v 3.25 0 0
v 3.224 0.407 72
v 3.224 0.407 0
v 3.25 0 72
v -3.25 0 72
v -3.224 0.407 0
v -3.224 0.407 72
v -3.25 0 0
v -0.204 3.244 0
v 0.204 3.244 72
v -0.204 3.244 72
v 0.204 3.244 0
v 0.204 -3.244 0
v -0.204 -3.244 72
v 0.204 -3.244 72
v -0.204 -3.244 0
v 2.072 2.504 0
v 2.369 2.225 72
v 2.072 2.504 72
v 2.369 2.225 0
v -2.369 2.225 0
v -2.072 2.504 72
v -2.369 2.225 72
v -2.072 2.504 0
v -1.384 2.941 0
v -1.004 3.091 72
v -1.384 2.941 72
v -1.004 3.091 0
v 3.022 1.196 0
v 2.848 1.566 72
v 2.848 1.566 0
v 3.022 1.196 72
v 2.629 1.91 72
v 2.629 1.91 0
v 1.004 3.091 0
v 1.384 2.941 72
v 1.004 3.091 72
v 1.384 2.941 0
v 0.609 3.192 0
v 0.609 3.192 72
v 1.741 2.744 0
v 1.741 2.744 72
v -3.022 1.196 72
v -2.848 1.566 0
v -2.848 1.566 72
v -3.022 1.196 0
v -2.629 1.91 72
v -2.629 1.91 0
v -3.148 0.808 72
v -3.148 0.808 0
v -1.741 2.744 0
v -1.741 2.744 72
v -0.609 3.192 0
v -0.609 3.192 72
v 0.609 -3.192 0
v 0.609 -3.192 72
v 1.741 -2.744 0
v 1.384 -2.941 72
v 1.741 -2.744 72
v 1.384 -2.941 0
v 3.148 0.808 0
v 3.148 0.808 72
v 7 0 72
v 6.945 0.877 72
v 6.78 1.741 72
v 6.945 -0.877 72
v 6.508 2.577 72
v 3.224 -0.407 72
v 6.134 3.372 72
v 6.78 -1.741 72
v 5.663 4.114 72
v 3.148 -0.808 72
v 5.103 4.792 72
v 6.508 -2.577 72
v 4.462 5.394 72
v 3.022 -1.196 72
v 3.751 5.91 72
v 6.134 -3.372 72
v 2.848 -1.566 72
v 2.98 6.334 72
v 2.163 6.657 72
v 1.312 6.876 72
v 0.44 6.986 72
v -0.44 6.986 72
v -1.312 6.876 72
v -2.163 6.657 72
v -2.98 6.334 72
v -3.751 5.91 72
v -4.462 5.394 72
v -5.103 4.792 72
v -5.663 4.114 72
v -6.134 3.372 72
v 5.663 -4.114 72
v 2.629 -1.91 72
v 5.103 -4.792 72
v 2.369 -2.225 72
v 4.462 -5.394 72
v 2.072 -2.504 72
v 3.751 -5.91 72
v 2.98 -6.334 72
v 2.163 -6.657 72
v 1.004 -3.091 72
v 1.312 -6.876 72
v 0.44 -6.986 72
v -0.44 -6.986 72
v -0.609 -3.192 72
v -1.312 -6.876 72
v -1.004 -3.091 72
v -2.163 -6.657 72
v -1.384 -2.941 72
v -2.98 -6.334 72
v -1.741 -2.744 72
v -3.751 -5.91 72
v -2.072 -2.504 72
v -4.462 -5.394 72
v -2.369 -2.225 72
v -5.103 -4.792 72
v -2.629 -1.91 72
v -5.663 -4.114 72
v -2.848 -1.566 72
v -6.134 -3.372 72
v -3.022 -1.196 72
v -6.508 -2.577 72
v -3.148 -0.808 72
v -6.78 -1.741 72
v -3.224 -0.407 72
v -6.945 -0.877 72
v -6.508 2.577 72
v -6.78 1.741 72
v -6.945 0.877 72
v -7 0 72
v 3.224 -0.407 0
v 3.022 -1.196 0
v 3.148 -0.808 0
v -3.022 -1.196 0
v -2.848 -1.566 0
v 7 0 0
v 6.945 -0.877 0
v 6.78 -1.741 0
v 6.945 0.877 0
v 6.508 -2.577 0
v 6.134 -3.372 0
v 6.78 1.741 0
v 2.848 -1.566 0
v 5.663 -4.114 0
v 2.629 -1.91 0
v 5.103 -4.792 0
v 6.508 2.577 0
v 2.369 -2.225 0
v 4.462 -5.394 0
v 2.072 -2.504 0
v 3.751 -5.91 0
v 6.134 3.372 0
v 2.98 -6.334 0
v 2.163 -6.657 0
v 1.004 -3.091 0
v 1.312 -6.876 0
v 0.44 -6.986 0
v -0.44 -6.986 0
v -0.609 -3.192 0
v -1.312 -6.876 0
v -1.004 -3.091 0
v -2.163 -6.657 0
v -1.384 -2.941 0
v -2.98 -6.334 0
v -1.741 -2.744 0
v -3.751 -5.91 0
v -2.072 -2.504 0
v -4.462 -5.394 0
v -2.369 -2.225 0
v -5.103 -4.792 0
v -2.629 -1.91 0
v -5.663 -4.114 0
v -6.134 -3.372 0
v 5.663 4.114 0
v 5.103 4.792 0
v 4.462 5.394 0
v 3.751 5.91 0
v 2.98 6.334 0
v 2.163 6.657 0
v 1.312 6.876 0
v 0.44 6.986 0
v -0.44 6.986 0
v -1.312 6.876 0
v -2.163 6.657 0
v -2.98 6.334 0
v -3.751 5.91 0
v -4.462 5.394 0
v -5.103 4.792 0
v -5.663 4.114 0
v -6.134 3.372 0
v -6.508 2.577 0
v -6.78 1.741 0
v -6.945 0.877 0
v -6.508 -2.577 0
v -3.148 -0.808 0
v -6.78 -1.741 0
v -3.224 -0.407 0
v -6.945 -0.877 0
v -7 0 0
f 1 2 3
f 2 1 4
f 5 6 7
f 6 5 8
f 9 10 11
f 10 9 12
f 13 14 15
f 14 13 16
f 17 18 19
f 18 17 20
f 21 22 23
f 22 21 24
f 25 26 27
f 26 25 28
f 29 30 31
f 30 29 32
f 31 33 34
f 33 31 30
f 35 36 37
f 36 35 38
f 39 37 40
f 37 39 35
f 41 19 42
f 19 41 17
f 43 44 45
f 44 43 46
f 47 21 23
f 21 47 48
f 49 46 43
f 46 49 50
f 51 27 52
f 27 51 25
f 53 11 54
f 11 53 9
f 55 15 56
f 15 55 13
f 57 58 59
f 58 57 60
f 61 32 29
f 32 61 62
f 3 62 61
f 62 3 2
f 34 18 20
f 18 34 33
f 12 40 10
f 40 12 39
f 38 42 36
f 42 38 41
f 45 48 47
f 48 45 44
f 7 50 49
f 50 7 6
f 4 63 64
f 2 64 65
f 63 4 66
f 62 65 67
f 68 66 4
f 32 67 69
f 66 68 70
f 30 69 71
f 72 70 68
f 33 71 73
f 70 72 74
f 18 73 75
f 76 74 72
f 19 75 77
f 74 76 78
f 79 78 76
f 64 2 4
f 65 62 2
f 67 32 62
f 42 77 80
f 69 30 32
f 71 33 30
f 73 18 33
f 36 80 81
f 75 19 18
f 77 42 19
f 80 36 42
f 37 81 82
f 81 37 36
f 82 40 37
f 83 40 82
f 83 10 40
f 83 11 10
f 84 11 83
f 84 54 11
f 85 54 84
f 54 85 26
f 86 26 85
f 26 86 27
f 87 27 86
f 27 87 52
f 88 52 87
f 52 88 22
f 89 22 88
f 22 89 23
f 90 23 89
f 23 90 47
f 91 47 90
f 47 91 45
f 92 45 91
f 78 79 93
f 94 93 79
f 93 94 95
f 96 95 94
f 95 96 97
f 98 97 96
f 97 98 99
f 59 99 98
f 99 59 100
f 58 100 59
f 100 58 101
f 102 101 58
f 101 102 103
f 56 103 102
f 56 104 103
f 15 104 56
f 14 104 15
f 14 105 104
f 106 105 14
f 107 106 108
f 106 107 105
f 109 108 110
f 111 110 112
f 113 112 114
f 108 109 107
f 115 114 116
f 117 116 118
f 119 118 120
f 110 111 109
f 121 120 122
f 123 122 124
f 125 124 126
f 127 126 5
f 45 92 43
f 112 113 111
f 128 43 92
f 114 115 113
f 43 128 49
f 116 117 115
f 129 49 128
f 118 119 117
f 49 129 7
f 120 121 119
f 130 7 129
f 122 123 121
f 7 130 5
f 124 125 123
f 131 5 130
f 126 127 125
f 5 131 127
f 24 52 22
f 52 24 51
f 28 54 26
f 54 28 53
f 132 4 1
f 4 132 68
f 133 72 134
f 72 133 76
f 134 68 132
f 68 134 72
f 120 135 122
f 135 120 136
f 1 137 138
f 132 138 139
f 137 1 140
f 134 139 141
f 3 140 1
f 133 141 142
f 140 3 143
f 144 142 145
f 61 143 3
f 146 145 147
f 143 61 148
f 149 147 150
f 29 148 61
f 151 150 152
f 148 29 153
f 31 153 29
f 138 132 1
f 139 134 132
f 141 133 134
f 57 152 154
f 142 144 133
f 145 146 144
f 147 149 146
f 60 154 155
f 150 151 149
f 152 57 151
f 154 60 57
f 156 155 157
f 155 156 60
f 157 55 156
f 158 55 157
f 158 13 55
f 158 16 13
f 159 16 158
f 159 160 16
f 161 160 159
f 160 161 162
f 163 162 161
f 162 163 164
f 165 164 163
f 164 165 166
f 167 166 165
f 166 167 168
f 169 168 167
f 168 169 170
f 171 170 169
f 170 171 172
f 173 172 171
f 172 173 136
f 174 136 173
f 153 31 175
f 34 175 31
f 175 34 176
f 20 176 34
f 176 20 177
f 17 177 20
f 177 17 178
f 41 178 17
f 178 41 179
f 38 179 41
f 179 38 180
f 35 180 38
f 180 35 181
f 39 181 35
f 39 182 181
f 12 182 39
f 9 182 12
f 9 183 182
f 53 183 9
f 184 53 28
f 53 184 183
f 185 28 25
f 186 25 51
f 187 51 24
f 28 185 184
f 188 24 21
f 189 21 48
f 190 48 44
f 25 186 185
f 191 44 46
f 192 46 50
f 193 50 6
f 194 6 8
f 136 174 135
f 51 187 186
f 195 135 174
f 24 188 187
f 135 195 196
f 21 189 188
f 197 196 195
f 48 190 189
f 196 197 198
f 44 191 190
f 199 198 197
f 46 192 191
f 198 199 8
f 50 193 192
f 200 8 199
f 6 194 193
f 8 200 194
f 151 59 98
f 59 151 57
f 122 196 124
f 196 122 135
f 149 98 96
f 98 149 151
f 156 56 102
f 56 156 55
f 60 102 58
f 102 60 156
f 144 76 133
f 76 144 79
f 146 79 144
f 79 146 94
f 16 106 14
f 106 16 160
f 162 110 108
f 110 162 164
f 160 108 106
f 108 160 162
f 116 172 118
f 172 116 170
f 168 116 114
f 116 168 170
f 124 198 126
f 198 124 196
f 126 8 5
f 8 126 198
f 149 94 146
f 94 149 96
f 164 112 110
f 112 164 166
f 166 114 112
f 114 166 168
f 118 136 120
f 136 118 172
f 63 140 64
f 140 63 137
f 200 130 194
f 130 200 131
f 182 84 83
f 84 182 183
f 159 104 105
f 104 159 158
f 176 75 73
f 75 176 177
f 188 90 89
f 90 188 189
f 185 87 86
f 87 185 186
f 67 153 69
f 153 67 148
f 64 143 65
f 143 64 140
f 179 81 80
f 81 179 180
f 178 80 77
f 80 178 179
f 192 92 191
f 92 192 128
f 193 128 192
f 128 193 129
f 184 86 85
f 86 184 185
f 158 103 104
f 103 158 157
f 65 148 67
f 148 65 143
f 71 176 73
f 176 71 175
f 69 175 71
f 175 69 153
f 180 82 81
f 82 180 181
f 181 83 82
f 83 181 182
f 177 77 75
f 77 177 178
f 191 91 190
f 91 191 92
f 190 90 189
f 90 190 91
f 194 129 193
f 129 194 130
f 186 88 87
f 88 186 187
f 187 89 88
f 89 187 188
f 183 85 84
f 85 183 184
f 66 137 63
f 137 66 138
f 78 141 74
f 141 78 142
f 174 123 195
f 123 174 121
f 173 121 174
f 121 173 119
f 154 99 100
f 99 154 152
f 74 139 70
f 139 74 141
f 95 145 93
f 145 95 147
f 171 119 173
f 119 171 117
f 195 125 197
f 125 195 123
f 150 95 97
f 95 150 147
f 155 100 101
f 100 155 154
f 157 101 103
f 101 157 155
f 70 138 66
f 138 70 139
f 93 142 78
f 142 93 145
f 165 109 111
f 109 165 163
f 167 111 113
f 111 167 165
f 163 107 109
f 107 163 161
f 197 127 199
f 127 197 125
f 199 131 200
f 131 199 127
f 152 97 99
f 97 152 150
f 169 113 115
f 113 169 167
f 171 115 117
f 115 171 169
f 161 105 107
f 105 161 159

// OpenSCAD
$fn = 50;


difference() {
	union() {
		cylinder(h = 72, r = 7.0000000000);
	}
	union() {
		translate(v = [0.0000000000, 0.0000000000, -100.0000000000]) {
			cylinder(h = 200, r = 3.2500000000);
		}
		translate(v = [0.0000000000, 0.0000000000, -100.0000000000]) {
			cylinder(h = 200, r = 3.2500000000);
		}
		translate(v = [0.0000000000, 0.0000000000, -100.0000000000]) {
			cylinder(h = 200, r = 3.2500000000);
		}
		translate(v = [0.0000000000, 0.0000000000, -100.0000000000]) {
			cylinder(h = 200, r = 3.2500000000);
		}
	}
}
